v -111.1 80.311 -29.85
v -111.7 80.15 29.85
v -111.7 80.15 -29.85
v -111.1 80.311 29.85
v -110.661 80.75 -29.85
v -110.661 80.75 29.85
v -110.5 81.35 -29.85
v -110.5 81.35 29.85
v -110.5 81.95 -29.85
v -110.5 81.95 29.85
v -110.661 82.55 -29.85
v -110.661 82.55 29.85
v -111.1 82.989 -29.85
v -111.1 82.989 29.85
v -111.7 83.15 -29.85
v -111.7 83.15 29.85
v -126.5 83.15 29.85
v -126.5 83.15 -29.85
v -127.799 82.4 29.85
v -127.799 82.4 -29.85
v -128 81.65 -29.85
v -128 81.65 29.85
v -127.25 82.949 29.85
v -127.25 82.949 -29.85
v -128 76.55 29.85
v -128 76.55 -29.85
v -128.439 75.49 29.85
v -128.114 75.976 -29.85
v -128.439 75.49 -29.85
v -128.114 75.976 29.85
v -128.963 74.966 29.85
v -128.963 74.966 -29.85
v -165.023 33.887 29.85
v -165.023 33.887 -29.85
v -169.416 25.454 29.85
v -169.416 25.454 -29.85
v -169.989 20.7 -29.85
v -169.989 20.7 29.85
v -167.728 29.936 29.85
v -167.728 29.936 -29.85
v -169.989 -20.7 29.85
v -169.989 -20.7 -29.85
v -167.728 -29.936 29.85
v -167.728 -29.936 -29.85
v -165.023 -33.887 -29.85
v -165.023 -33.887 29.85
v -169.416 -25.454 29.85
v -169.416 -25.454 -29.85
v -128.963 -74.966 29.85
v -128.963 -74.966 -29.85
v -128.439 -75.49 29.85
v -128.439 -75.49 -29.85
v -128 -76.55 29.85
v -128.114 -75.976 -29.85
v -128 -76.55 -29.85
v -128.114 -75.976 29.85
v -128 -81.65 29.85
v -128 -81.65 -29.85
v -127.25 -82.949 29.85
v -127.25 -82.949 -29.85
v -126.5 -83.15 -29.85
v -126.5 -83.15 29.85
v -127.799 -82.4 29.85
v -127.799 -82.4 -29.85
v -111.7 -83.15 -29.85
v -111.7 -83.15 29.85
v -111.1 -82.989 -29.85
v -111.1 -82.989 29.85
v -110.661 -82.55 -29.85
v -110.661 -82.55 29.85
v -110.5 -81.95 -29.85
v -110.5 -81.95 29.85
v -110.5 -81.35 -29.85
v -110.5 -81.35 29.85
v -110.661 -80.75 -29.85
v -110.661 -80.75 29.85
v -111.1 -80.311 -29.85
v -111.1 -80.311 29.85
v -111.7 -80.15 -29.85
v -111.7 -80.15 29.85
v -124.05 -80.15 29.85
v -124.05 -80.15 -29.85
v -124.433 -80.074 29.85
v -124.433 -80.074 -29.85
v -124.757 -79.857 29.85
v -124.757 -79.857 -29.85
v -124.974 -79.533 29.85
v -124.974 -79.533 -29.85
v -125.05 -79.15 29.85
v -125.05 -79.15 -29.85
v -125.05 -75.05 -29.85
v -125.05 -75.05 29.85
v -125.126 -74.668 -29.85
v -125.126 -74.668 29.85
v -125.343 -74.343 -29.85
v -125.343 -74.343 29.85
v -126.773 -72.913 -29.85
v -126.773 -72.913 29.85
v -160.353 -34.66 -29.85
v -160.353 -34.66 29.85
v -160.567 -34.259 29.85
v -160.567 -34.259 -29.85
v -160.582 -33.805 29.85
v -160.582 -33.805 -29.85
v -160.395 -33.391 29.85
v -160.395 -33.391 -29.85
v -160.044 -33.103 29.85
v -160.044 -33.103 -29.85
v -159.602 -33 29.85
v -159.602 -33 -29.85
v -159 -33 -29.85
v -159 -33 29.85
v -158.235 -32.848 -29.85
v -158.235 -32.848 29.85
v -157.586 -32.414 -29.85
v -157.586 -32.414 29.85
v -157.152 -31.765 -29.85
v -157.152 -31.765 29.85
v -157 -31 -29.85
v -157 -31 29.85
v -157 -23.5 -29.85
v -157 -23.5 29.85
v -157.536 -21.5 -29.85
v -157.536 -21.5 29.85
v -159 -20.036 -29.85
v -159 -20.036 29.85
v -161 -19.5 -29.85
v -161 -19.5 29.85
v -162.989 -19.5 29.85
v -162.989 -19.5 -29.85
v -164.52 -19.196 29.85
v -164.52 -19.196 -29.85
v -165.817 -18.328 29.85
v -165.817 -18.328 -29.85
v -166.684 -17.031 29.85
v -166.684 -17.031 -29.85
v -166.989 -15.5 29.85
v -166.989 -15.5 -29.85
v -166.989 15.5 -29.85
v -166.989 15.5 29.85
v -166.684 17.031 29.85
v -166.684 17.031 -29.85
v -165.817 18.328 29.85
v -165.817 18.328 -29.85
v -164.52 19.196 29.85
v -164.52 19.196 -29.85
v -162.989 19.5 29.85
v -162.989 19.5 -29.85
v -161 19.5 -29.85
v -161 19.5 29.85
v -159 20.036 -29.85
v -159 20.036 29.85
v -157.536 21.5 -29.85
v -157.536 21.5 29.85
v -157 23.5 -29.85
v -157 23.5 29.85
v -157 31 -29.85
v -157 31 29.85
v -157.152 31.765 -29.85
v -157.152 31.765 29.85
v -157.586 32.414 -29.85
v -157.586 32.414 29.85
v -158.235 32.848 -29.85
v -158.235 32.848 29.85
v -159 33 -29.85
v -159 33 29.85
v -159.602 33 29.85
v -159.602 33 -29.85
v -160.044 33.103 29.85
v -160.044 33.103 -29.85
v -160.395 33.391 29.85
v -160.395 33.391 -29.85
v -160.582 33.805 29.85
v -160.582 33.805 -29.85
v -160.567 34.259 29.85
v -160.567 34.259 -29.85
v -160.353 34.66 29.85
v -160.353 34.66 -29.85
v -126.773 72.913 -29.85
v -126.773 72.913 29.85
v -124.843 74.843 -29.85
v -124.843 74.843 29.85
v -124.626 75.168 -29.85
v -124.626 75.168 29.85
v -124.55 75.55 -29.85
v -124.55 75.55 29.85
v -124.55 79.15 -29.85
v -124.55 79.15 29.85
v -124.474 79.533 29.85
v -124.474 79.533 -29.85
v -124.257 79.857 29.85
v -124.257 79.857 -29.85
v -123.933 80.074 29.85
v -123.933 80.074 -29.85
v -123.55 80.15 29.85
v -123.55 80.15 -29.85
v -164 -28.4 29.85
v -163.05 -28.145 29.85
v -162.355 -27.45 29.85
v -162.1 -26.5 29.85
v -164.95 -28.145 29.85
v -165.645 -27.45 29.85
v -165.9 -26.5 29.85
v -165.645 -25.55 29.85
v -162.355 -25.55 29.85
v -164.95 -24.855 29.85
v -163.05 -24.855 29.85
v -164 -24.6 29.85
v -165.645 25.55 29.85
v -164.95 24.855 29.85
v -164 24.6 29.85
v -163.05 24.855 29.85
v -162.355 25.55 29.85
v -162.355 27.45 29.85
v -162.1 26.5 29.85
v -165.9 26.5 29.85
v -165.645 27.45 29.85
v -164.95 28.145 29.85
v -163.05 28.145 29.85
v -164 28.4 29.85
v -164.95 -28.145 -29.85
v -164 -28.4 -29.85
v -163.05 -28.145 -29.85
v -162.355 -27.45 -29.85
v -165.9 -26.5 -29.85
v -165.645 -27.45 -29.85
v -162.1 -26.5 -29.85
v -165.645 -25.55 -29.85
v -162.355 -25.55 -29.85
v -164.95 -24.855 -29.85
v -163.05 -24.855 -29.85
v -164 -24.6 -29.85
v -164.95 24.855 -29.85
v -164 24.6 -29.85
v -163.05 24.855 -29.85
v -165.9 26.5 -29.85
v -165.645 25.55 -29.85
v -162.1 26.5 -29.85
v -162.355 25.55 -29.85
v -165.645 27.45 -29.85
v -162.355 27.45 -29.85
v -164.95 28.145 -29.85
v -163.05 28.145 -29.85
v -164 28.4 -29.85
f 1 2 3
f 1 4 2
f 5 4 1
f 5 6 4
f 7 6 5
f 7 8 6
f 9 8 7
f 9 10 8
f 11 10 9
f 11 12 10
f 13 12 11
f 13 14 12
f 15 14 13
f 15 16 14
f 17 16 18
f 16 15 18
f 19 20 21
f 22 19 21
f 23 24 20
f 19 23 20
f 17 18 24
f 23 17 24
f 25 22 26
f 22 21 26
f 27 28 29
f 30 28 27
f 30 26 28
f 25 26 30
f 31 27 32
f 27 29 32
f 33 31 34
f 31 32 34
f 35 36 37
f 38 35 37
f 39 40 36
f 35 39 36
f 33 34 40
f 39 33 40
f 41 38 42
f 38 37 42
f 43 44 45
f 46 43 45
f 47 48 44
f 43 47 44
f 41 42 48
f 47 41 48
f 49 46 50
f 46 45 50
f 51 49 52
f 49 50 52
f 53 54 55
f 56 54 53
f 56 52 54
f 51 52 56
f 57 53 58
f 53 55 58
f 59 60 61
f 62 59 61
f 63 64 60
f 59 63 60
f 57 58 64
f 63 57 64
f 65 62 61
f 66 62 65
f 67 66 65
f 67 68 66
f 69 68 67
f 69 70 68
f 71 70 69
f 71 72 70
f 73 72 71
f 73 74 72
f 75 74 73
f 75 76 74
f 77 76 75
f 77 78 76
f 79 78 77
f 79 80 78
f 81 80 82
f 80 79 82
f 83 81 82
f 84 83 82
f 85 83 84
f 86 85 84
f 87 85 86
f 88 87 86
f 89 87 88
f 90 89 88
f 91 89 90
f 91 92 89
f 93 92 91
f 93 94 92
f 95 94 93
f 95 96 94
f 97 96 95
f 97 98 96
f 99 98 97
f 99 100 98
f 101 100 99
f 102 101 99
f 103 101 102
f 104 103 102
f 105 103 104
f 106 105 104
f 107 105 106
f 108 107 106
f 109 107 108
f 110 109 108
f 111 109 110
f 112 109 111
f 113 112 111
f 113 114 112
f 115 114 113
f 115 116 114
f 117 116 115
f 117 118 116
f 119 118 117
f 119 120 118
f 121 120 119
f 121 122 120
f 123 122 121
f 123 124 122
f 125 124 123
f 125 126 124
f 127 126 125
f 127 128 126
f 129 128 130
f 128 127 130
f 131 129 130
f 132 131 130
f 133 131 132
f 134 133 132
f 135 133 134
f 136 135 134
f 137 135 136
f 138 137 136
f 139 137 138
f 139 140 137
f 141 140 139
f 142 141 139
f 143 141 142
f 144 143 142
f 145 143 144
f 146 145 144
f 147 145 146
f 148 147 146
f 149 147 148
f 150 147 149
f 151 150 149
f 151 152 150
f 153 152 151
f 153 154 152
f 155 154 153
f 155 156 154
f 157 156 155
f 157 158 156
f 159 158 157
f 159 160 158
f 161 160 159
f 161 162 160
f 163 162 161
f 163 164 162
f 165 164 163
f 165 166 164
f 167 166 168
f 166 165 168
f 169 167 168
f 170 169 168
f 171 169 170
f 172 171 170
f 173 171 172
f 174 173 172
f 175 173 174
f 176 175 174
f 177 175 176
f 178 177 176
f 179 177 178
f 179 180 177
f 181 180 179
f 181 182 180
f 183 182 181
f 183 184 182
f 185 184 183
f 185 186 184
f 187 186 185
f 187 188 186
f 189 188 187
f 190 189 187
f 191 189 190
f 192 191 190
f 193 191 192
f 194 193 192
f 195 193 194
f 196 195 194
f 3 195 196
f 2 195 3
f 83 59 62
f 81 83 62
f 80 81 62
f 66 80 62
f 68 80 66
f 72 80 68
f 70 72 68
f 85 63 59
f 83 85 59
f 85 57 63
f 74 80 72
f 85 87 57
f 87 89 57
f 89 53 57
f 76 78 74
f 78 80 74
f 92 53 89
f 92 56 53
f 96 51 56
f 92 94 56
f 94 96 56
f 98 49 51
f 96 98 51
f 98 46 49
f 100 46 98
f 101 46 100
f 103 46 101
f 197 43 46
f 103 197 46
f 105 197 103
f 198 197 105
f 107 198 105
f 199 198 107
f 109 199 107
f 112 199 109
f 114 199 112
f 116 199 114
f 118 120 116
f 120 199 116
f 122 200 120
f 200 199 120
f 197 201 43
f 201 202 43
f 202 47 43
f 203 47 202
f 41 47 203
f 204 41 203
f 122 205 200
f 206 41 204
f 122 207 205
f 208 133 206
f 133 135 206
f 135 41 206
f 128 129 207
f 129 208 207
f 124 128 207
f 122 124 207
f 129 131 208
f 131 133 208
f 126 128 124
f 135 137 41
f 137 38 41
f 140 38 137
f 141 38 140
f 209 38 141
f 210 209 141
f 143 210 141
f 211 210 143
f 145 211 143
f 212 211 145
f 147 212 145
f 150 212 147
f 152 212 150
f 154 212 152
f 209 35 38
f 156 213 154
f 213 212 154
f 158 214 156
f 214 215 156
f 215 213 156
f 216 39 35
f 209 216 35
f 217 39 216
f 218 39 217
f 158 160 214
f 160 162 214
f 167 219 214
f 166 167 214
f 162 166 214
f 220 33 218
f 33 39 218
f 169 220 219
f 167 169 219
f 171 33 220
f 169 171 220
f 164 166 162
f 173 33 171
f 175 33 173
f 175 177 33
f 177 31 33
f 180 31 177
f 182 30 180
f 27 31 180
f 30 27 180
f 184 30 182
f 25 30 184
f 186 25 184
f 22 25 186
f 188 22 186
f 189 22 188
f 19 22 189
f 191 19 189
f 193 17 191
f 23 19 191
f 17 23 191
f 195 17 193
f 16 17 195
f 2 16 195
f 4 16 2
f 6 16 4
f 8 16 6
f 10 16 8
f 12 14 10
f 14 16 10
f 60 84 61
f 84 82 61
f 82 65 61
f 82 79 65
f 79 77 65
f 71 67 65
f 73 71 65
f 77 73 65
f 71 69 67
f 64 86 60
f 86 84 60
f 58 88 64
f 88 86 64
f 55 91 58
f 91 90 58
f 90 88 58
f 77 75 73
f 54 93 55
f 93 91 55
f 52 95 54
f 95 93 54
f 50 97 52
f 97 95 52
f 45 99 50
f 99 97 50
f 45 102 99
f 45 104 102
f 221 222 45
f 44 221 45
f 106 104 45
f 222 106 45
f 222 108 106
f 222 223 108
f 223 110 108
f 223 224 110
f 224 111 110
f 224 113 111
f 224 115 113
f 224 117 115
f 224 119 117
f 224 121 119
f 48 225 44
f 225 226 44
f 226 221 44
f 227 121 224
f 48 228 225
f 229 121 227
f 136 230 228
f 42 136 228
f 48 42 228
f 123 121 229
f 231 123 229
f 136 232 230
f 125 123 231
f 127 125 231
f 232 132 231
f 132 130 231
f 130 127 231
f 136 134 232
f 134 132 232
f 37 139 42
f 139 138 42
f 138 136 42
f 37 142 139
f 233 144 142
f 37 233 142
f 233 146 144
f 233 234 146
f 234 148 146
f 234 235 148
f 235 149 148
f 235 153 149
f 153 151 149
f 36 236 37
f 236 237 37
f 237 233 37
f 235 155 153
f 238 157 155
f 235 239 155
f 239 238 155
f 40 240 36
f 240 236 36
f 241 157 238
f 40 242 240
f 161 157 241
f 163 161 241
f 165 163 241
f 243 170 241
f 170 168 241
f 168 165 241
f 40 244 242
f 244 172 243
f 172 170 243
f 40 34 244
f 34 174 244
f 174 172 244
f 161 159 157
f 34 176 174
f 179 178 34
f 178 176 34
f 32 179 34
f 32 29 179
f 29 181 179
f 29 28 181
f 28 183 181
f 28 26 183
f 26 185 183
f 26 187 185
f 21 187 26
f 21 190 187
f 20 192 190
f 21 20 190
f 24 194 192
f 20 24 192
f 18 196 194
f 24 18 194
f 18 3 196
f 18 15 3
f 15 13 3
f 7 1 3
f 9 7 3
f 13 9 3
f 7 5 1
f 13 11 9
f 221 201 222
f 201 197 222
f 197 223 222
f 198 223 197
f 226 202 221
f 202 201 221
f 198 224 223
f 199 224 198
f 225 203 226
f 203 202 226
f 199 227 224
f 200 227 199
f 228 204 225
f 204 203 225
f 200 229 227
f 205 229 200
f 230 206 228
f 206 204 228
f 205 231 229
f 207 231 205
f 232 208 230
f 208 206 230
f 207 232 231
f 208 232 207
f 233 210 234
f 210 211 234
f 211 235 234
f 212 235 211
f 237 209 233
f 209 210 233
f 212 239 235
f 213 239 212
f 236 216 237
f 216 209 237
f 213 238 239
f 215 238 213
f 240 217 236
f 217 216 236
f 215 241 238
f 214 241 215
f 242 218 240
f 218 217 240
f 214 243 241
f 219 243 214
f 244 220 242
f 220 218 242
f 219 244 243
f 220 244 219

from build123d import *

# Parameters (mm, degrees)
EXTRUDE_START       = -29.85
EXTRUDE_1_DEPTH     = 59.7
CUT_EXTRUDE_START   = 30.35
SKETCH_2_R          = 1.9
CUT_EXTRUDE_1_DEPTH = 60.7


with BuildPart() as part:
    # 草图1 → 凸台-拉伸1 (new body)
    with BuildSketch(Plane.XY.offset(EXTRUDE_START)):
        with BuildLine():
            Line((-111.7, 80.15), (-123.55, 80.15))
            ThreePointArc((-123.55, 80.15), (-124.257106781, 79.857106781), (-124.55, 79.15))
            Line((-124.55, 79.15), (-124.55, 75.550213562))
            ThreePointArc((-124.55, 75.550213562), (-124.626120467, 75.16753013), (-124.842893219, 74.843106781))
            Line((-124.842893219, 74.843106781), (-126.773, 72.913))
            Line((-126.773, 72.913), (-160.353049521, 34.659710148))
            ThreePointArc((-160.353049521, 34.659710148), (-160.512493197, 33.587513726), (-159.601529381, 33))
            Line((-159.601529381, 33), (-159, 33))
            ThreePointArc((-159, 33), (-157.585786438, 32.414213562), (-157, 31))
            Line((-157, 31), (-157, 23.5))
            ThreePointArc((-157, 23.5), (-158.171572875, 20.671572875), (-161, 19.5))
            Line((-161, 19.5), (-162.989, 19.5))
            ThreePointArc((-162.989, 19.5), (-165.817427125, 18.328427125), (-166.989, 15.5))
            Line((-166.989, 15.5), (-166.989, -15.5))
            ThreePointArc((-166.989, -15.5), (-165.817427125, -18.328427125), (-162.989, -19.5))
            Line((-162.989, -19.5), (-161, -19.5))
            ThreePointArc((-161, -19.5), (-158.171572875, -20.671572875), (-157, -23.5))
            Line((-157, -23.5), (-157, -31))
            ThreePointArc((-157, -31), (-157.585786438, -32.414213562), (-159, -33))
            Line((-159, -33), (-159.601529381, -33))
            ThreePointArc((-159.601529381, -33), (-160.512493197, -33.587513726), (-160.353049521, -34.659710148))
            Line((-160.353049521, -34.659710148), (-126.773, -72.913))
            Line((-126.773, -72.913), (-125.342893219, -74.343106781))
            ThreePointArc((-125.342893219, -74.343106781), (-125.126120467, -74.66753013), (-125.05, -75.050213562))
            Line((-125.05, -75.050213562), (-125.05, -79.15))
            ThreePointArc((-125.05, -79.15), (-124.757106781, -79.857106781), (-124.05, -80.15))
            Line((-124.05, -80.15), (-111.7, -80.15))
            ThreePointArc((-111.7, -80.15), (-110.851471863, -80.501471863), (-110.5, -81.35))
            Line((-110.5, -81.35), (-110.5, -81.95))
            ThreePointArc((-110.5, -81.95), (-110.851471863, -82.798528137), (-111.7, -83.15))
            Line((-111.7, -83.15), (-126.5, -83.15))
            ThreePointArc((-126.5, -83.15), (-127.560660172, -82.710660172), (-128, -81.65))
            Line((-128, -81.65), (-128, -76.550320344))
            ThreePointArc((-128, -76.550320344), (-128.114180701, -75.976295195), (-128.439339828, -75.489660172))
            Line((-128.439339828, -75.489660172), (-128.963, -74.966))
            Line((-128.963, -74.966), (-165.023, -33.887))
            ThreePointArc((-165.023, -33.887), (-168.70682882, -27.745711718), (-169.989, -20.7))
            Line((-169.989, -20.7), (-169.989, 20.7))
            ThreePointArc((-169.989, 20.7), (-168.70682882, 27.745711718), (-165.023, 33.887))
            Line((-165.023, 33.887), (-128.963, 74.966))
            Line((-128.963, 74.966), (-128.439339828, 75.489660172))
            ThreePointArc((-128.439339828, 75.489660172), (-128.114180701, 75.976295195), (-128, 76.550320344))
            Line((-128, 76.550320344), (-128, 81.65))
            ThreePointArc((-128, 81.65), (-127.560660172, 82.710660172), (-126.5, 83.15))
            Line((-126.5, 83.15), (-111.7, 83.15))
            ThreePointArc((-111.7, 83.15), (-110.851471863, 82.798528137), (-110.5, 81.95))
            Line((-110.5, 81.95), (-110.5, 81.35))
            ThreePointArc((-110.5, 81.35), (-110.851471863, 80.501471863), (-111.7, 80.15))
        make_face()
    extrude(amount=EXTRUDE_1_DEPTH)

    # 草图2 → 切除-拉伸1 (cut)
    with BuildSketch(Plane.XY.offset(CUT_EXTRUDE_START)):
        with Locations(Location((-164, 26.5, 0), (0, 0, 180))):
            Circle(SKETCH_2_R)
        with Locations(Location((-164, -26.5, 0), (0, 0, 180))):
            Circle(SKETCH_2_R)
    extrude(amount=-CUT_EXTRUDE_1_DEPTH, mode=Mode.SUBTRACT)


solid = part.part
